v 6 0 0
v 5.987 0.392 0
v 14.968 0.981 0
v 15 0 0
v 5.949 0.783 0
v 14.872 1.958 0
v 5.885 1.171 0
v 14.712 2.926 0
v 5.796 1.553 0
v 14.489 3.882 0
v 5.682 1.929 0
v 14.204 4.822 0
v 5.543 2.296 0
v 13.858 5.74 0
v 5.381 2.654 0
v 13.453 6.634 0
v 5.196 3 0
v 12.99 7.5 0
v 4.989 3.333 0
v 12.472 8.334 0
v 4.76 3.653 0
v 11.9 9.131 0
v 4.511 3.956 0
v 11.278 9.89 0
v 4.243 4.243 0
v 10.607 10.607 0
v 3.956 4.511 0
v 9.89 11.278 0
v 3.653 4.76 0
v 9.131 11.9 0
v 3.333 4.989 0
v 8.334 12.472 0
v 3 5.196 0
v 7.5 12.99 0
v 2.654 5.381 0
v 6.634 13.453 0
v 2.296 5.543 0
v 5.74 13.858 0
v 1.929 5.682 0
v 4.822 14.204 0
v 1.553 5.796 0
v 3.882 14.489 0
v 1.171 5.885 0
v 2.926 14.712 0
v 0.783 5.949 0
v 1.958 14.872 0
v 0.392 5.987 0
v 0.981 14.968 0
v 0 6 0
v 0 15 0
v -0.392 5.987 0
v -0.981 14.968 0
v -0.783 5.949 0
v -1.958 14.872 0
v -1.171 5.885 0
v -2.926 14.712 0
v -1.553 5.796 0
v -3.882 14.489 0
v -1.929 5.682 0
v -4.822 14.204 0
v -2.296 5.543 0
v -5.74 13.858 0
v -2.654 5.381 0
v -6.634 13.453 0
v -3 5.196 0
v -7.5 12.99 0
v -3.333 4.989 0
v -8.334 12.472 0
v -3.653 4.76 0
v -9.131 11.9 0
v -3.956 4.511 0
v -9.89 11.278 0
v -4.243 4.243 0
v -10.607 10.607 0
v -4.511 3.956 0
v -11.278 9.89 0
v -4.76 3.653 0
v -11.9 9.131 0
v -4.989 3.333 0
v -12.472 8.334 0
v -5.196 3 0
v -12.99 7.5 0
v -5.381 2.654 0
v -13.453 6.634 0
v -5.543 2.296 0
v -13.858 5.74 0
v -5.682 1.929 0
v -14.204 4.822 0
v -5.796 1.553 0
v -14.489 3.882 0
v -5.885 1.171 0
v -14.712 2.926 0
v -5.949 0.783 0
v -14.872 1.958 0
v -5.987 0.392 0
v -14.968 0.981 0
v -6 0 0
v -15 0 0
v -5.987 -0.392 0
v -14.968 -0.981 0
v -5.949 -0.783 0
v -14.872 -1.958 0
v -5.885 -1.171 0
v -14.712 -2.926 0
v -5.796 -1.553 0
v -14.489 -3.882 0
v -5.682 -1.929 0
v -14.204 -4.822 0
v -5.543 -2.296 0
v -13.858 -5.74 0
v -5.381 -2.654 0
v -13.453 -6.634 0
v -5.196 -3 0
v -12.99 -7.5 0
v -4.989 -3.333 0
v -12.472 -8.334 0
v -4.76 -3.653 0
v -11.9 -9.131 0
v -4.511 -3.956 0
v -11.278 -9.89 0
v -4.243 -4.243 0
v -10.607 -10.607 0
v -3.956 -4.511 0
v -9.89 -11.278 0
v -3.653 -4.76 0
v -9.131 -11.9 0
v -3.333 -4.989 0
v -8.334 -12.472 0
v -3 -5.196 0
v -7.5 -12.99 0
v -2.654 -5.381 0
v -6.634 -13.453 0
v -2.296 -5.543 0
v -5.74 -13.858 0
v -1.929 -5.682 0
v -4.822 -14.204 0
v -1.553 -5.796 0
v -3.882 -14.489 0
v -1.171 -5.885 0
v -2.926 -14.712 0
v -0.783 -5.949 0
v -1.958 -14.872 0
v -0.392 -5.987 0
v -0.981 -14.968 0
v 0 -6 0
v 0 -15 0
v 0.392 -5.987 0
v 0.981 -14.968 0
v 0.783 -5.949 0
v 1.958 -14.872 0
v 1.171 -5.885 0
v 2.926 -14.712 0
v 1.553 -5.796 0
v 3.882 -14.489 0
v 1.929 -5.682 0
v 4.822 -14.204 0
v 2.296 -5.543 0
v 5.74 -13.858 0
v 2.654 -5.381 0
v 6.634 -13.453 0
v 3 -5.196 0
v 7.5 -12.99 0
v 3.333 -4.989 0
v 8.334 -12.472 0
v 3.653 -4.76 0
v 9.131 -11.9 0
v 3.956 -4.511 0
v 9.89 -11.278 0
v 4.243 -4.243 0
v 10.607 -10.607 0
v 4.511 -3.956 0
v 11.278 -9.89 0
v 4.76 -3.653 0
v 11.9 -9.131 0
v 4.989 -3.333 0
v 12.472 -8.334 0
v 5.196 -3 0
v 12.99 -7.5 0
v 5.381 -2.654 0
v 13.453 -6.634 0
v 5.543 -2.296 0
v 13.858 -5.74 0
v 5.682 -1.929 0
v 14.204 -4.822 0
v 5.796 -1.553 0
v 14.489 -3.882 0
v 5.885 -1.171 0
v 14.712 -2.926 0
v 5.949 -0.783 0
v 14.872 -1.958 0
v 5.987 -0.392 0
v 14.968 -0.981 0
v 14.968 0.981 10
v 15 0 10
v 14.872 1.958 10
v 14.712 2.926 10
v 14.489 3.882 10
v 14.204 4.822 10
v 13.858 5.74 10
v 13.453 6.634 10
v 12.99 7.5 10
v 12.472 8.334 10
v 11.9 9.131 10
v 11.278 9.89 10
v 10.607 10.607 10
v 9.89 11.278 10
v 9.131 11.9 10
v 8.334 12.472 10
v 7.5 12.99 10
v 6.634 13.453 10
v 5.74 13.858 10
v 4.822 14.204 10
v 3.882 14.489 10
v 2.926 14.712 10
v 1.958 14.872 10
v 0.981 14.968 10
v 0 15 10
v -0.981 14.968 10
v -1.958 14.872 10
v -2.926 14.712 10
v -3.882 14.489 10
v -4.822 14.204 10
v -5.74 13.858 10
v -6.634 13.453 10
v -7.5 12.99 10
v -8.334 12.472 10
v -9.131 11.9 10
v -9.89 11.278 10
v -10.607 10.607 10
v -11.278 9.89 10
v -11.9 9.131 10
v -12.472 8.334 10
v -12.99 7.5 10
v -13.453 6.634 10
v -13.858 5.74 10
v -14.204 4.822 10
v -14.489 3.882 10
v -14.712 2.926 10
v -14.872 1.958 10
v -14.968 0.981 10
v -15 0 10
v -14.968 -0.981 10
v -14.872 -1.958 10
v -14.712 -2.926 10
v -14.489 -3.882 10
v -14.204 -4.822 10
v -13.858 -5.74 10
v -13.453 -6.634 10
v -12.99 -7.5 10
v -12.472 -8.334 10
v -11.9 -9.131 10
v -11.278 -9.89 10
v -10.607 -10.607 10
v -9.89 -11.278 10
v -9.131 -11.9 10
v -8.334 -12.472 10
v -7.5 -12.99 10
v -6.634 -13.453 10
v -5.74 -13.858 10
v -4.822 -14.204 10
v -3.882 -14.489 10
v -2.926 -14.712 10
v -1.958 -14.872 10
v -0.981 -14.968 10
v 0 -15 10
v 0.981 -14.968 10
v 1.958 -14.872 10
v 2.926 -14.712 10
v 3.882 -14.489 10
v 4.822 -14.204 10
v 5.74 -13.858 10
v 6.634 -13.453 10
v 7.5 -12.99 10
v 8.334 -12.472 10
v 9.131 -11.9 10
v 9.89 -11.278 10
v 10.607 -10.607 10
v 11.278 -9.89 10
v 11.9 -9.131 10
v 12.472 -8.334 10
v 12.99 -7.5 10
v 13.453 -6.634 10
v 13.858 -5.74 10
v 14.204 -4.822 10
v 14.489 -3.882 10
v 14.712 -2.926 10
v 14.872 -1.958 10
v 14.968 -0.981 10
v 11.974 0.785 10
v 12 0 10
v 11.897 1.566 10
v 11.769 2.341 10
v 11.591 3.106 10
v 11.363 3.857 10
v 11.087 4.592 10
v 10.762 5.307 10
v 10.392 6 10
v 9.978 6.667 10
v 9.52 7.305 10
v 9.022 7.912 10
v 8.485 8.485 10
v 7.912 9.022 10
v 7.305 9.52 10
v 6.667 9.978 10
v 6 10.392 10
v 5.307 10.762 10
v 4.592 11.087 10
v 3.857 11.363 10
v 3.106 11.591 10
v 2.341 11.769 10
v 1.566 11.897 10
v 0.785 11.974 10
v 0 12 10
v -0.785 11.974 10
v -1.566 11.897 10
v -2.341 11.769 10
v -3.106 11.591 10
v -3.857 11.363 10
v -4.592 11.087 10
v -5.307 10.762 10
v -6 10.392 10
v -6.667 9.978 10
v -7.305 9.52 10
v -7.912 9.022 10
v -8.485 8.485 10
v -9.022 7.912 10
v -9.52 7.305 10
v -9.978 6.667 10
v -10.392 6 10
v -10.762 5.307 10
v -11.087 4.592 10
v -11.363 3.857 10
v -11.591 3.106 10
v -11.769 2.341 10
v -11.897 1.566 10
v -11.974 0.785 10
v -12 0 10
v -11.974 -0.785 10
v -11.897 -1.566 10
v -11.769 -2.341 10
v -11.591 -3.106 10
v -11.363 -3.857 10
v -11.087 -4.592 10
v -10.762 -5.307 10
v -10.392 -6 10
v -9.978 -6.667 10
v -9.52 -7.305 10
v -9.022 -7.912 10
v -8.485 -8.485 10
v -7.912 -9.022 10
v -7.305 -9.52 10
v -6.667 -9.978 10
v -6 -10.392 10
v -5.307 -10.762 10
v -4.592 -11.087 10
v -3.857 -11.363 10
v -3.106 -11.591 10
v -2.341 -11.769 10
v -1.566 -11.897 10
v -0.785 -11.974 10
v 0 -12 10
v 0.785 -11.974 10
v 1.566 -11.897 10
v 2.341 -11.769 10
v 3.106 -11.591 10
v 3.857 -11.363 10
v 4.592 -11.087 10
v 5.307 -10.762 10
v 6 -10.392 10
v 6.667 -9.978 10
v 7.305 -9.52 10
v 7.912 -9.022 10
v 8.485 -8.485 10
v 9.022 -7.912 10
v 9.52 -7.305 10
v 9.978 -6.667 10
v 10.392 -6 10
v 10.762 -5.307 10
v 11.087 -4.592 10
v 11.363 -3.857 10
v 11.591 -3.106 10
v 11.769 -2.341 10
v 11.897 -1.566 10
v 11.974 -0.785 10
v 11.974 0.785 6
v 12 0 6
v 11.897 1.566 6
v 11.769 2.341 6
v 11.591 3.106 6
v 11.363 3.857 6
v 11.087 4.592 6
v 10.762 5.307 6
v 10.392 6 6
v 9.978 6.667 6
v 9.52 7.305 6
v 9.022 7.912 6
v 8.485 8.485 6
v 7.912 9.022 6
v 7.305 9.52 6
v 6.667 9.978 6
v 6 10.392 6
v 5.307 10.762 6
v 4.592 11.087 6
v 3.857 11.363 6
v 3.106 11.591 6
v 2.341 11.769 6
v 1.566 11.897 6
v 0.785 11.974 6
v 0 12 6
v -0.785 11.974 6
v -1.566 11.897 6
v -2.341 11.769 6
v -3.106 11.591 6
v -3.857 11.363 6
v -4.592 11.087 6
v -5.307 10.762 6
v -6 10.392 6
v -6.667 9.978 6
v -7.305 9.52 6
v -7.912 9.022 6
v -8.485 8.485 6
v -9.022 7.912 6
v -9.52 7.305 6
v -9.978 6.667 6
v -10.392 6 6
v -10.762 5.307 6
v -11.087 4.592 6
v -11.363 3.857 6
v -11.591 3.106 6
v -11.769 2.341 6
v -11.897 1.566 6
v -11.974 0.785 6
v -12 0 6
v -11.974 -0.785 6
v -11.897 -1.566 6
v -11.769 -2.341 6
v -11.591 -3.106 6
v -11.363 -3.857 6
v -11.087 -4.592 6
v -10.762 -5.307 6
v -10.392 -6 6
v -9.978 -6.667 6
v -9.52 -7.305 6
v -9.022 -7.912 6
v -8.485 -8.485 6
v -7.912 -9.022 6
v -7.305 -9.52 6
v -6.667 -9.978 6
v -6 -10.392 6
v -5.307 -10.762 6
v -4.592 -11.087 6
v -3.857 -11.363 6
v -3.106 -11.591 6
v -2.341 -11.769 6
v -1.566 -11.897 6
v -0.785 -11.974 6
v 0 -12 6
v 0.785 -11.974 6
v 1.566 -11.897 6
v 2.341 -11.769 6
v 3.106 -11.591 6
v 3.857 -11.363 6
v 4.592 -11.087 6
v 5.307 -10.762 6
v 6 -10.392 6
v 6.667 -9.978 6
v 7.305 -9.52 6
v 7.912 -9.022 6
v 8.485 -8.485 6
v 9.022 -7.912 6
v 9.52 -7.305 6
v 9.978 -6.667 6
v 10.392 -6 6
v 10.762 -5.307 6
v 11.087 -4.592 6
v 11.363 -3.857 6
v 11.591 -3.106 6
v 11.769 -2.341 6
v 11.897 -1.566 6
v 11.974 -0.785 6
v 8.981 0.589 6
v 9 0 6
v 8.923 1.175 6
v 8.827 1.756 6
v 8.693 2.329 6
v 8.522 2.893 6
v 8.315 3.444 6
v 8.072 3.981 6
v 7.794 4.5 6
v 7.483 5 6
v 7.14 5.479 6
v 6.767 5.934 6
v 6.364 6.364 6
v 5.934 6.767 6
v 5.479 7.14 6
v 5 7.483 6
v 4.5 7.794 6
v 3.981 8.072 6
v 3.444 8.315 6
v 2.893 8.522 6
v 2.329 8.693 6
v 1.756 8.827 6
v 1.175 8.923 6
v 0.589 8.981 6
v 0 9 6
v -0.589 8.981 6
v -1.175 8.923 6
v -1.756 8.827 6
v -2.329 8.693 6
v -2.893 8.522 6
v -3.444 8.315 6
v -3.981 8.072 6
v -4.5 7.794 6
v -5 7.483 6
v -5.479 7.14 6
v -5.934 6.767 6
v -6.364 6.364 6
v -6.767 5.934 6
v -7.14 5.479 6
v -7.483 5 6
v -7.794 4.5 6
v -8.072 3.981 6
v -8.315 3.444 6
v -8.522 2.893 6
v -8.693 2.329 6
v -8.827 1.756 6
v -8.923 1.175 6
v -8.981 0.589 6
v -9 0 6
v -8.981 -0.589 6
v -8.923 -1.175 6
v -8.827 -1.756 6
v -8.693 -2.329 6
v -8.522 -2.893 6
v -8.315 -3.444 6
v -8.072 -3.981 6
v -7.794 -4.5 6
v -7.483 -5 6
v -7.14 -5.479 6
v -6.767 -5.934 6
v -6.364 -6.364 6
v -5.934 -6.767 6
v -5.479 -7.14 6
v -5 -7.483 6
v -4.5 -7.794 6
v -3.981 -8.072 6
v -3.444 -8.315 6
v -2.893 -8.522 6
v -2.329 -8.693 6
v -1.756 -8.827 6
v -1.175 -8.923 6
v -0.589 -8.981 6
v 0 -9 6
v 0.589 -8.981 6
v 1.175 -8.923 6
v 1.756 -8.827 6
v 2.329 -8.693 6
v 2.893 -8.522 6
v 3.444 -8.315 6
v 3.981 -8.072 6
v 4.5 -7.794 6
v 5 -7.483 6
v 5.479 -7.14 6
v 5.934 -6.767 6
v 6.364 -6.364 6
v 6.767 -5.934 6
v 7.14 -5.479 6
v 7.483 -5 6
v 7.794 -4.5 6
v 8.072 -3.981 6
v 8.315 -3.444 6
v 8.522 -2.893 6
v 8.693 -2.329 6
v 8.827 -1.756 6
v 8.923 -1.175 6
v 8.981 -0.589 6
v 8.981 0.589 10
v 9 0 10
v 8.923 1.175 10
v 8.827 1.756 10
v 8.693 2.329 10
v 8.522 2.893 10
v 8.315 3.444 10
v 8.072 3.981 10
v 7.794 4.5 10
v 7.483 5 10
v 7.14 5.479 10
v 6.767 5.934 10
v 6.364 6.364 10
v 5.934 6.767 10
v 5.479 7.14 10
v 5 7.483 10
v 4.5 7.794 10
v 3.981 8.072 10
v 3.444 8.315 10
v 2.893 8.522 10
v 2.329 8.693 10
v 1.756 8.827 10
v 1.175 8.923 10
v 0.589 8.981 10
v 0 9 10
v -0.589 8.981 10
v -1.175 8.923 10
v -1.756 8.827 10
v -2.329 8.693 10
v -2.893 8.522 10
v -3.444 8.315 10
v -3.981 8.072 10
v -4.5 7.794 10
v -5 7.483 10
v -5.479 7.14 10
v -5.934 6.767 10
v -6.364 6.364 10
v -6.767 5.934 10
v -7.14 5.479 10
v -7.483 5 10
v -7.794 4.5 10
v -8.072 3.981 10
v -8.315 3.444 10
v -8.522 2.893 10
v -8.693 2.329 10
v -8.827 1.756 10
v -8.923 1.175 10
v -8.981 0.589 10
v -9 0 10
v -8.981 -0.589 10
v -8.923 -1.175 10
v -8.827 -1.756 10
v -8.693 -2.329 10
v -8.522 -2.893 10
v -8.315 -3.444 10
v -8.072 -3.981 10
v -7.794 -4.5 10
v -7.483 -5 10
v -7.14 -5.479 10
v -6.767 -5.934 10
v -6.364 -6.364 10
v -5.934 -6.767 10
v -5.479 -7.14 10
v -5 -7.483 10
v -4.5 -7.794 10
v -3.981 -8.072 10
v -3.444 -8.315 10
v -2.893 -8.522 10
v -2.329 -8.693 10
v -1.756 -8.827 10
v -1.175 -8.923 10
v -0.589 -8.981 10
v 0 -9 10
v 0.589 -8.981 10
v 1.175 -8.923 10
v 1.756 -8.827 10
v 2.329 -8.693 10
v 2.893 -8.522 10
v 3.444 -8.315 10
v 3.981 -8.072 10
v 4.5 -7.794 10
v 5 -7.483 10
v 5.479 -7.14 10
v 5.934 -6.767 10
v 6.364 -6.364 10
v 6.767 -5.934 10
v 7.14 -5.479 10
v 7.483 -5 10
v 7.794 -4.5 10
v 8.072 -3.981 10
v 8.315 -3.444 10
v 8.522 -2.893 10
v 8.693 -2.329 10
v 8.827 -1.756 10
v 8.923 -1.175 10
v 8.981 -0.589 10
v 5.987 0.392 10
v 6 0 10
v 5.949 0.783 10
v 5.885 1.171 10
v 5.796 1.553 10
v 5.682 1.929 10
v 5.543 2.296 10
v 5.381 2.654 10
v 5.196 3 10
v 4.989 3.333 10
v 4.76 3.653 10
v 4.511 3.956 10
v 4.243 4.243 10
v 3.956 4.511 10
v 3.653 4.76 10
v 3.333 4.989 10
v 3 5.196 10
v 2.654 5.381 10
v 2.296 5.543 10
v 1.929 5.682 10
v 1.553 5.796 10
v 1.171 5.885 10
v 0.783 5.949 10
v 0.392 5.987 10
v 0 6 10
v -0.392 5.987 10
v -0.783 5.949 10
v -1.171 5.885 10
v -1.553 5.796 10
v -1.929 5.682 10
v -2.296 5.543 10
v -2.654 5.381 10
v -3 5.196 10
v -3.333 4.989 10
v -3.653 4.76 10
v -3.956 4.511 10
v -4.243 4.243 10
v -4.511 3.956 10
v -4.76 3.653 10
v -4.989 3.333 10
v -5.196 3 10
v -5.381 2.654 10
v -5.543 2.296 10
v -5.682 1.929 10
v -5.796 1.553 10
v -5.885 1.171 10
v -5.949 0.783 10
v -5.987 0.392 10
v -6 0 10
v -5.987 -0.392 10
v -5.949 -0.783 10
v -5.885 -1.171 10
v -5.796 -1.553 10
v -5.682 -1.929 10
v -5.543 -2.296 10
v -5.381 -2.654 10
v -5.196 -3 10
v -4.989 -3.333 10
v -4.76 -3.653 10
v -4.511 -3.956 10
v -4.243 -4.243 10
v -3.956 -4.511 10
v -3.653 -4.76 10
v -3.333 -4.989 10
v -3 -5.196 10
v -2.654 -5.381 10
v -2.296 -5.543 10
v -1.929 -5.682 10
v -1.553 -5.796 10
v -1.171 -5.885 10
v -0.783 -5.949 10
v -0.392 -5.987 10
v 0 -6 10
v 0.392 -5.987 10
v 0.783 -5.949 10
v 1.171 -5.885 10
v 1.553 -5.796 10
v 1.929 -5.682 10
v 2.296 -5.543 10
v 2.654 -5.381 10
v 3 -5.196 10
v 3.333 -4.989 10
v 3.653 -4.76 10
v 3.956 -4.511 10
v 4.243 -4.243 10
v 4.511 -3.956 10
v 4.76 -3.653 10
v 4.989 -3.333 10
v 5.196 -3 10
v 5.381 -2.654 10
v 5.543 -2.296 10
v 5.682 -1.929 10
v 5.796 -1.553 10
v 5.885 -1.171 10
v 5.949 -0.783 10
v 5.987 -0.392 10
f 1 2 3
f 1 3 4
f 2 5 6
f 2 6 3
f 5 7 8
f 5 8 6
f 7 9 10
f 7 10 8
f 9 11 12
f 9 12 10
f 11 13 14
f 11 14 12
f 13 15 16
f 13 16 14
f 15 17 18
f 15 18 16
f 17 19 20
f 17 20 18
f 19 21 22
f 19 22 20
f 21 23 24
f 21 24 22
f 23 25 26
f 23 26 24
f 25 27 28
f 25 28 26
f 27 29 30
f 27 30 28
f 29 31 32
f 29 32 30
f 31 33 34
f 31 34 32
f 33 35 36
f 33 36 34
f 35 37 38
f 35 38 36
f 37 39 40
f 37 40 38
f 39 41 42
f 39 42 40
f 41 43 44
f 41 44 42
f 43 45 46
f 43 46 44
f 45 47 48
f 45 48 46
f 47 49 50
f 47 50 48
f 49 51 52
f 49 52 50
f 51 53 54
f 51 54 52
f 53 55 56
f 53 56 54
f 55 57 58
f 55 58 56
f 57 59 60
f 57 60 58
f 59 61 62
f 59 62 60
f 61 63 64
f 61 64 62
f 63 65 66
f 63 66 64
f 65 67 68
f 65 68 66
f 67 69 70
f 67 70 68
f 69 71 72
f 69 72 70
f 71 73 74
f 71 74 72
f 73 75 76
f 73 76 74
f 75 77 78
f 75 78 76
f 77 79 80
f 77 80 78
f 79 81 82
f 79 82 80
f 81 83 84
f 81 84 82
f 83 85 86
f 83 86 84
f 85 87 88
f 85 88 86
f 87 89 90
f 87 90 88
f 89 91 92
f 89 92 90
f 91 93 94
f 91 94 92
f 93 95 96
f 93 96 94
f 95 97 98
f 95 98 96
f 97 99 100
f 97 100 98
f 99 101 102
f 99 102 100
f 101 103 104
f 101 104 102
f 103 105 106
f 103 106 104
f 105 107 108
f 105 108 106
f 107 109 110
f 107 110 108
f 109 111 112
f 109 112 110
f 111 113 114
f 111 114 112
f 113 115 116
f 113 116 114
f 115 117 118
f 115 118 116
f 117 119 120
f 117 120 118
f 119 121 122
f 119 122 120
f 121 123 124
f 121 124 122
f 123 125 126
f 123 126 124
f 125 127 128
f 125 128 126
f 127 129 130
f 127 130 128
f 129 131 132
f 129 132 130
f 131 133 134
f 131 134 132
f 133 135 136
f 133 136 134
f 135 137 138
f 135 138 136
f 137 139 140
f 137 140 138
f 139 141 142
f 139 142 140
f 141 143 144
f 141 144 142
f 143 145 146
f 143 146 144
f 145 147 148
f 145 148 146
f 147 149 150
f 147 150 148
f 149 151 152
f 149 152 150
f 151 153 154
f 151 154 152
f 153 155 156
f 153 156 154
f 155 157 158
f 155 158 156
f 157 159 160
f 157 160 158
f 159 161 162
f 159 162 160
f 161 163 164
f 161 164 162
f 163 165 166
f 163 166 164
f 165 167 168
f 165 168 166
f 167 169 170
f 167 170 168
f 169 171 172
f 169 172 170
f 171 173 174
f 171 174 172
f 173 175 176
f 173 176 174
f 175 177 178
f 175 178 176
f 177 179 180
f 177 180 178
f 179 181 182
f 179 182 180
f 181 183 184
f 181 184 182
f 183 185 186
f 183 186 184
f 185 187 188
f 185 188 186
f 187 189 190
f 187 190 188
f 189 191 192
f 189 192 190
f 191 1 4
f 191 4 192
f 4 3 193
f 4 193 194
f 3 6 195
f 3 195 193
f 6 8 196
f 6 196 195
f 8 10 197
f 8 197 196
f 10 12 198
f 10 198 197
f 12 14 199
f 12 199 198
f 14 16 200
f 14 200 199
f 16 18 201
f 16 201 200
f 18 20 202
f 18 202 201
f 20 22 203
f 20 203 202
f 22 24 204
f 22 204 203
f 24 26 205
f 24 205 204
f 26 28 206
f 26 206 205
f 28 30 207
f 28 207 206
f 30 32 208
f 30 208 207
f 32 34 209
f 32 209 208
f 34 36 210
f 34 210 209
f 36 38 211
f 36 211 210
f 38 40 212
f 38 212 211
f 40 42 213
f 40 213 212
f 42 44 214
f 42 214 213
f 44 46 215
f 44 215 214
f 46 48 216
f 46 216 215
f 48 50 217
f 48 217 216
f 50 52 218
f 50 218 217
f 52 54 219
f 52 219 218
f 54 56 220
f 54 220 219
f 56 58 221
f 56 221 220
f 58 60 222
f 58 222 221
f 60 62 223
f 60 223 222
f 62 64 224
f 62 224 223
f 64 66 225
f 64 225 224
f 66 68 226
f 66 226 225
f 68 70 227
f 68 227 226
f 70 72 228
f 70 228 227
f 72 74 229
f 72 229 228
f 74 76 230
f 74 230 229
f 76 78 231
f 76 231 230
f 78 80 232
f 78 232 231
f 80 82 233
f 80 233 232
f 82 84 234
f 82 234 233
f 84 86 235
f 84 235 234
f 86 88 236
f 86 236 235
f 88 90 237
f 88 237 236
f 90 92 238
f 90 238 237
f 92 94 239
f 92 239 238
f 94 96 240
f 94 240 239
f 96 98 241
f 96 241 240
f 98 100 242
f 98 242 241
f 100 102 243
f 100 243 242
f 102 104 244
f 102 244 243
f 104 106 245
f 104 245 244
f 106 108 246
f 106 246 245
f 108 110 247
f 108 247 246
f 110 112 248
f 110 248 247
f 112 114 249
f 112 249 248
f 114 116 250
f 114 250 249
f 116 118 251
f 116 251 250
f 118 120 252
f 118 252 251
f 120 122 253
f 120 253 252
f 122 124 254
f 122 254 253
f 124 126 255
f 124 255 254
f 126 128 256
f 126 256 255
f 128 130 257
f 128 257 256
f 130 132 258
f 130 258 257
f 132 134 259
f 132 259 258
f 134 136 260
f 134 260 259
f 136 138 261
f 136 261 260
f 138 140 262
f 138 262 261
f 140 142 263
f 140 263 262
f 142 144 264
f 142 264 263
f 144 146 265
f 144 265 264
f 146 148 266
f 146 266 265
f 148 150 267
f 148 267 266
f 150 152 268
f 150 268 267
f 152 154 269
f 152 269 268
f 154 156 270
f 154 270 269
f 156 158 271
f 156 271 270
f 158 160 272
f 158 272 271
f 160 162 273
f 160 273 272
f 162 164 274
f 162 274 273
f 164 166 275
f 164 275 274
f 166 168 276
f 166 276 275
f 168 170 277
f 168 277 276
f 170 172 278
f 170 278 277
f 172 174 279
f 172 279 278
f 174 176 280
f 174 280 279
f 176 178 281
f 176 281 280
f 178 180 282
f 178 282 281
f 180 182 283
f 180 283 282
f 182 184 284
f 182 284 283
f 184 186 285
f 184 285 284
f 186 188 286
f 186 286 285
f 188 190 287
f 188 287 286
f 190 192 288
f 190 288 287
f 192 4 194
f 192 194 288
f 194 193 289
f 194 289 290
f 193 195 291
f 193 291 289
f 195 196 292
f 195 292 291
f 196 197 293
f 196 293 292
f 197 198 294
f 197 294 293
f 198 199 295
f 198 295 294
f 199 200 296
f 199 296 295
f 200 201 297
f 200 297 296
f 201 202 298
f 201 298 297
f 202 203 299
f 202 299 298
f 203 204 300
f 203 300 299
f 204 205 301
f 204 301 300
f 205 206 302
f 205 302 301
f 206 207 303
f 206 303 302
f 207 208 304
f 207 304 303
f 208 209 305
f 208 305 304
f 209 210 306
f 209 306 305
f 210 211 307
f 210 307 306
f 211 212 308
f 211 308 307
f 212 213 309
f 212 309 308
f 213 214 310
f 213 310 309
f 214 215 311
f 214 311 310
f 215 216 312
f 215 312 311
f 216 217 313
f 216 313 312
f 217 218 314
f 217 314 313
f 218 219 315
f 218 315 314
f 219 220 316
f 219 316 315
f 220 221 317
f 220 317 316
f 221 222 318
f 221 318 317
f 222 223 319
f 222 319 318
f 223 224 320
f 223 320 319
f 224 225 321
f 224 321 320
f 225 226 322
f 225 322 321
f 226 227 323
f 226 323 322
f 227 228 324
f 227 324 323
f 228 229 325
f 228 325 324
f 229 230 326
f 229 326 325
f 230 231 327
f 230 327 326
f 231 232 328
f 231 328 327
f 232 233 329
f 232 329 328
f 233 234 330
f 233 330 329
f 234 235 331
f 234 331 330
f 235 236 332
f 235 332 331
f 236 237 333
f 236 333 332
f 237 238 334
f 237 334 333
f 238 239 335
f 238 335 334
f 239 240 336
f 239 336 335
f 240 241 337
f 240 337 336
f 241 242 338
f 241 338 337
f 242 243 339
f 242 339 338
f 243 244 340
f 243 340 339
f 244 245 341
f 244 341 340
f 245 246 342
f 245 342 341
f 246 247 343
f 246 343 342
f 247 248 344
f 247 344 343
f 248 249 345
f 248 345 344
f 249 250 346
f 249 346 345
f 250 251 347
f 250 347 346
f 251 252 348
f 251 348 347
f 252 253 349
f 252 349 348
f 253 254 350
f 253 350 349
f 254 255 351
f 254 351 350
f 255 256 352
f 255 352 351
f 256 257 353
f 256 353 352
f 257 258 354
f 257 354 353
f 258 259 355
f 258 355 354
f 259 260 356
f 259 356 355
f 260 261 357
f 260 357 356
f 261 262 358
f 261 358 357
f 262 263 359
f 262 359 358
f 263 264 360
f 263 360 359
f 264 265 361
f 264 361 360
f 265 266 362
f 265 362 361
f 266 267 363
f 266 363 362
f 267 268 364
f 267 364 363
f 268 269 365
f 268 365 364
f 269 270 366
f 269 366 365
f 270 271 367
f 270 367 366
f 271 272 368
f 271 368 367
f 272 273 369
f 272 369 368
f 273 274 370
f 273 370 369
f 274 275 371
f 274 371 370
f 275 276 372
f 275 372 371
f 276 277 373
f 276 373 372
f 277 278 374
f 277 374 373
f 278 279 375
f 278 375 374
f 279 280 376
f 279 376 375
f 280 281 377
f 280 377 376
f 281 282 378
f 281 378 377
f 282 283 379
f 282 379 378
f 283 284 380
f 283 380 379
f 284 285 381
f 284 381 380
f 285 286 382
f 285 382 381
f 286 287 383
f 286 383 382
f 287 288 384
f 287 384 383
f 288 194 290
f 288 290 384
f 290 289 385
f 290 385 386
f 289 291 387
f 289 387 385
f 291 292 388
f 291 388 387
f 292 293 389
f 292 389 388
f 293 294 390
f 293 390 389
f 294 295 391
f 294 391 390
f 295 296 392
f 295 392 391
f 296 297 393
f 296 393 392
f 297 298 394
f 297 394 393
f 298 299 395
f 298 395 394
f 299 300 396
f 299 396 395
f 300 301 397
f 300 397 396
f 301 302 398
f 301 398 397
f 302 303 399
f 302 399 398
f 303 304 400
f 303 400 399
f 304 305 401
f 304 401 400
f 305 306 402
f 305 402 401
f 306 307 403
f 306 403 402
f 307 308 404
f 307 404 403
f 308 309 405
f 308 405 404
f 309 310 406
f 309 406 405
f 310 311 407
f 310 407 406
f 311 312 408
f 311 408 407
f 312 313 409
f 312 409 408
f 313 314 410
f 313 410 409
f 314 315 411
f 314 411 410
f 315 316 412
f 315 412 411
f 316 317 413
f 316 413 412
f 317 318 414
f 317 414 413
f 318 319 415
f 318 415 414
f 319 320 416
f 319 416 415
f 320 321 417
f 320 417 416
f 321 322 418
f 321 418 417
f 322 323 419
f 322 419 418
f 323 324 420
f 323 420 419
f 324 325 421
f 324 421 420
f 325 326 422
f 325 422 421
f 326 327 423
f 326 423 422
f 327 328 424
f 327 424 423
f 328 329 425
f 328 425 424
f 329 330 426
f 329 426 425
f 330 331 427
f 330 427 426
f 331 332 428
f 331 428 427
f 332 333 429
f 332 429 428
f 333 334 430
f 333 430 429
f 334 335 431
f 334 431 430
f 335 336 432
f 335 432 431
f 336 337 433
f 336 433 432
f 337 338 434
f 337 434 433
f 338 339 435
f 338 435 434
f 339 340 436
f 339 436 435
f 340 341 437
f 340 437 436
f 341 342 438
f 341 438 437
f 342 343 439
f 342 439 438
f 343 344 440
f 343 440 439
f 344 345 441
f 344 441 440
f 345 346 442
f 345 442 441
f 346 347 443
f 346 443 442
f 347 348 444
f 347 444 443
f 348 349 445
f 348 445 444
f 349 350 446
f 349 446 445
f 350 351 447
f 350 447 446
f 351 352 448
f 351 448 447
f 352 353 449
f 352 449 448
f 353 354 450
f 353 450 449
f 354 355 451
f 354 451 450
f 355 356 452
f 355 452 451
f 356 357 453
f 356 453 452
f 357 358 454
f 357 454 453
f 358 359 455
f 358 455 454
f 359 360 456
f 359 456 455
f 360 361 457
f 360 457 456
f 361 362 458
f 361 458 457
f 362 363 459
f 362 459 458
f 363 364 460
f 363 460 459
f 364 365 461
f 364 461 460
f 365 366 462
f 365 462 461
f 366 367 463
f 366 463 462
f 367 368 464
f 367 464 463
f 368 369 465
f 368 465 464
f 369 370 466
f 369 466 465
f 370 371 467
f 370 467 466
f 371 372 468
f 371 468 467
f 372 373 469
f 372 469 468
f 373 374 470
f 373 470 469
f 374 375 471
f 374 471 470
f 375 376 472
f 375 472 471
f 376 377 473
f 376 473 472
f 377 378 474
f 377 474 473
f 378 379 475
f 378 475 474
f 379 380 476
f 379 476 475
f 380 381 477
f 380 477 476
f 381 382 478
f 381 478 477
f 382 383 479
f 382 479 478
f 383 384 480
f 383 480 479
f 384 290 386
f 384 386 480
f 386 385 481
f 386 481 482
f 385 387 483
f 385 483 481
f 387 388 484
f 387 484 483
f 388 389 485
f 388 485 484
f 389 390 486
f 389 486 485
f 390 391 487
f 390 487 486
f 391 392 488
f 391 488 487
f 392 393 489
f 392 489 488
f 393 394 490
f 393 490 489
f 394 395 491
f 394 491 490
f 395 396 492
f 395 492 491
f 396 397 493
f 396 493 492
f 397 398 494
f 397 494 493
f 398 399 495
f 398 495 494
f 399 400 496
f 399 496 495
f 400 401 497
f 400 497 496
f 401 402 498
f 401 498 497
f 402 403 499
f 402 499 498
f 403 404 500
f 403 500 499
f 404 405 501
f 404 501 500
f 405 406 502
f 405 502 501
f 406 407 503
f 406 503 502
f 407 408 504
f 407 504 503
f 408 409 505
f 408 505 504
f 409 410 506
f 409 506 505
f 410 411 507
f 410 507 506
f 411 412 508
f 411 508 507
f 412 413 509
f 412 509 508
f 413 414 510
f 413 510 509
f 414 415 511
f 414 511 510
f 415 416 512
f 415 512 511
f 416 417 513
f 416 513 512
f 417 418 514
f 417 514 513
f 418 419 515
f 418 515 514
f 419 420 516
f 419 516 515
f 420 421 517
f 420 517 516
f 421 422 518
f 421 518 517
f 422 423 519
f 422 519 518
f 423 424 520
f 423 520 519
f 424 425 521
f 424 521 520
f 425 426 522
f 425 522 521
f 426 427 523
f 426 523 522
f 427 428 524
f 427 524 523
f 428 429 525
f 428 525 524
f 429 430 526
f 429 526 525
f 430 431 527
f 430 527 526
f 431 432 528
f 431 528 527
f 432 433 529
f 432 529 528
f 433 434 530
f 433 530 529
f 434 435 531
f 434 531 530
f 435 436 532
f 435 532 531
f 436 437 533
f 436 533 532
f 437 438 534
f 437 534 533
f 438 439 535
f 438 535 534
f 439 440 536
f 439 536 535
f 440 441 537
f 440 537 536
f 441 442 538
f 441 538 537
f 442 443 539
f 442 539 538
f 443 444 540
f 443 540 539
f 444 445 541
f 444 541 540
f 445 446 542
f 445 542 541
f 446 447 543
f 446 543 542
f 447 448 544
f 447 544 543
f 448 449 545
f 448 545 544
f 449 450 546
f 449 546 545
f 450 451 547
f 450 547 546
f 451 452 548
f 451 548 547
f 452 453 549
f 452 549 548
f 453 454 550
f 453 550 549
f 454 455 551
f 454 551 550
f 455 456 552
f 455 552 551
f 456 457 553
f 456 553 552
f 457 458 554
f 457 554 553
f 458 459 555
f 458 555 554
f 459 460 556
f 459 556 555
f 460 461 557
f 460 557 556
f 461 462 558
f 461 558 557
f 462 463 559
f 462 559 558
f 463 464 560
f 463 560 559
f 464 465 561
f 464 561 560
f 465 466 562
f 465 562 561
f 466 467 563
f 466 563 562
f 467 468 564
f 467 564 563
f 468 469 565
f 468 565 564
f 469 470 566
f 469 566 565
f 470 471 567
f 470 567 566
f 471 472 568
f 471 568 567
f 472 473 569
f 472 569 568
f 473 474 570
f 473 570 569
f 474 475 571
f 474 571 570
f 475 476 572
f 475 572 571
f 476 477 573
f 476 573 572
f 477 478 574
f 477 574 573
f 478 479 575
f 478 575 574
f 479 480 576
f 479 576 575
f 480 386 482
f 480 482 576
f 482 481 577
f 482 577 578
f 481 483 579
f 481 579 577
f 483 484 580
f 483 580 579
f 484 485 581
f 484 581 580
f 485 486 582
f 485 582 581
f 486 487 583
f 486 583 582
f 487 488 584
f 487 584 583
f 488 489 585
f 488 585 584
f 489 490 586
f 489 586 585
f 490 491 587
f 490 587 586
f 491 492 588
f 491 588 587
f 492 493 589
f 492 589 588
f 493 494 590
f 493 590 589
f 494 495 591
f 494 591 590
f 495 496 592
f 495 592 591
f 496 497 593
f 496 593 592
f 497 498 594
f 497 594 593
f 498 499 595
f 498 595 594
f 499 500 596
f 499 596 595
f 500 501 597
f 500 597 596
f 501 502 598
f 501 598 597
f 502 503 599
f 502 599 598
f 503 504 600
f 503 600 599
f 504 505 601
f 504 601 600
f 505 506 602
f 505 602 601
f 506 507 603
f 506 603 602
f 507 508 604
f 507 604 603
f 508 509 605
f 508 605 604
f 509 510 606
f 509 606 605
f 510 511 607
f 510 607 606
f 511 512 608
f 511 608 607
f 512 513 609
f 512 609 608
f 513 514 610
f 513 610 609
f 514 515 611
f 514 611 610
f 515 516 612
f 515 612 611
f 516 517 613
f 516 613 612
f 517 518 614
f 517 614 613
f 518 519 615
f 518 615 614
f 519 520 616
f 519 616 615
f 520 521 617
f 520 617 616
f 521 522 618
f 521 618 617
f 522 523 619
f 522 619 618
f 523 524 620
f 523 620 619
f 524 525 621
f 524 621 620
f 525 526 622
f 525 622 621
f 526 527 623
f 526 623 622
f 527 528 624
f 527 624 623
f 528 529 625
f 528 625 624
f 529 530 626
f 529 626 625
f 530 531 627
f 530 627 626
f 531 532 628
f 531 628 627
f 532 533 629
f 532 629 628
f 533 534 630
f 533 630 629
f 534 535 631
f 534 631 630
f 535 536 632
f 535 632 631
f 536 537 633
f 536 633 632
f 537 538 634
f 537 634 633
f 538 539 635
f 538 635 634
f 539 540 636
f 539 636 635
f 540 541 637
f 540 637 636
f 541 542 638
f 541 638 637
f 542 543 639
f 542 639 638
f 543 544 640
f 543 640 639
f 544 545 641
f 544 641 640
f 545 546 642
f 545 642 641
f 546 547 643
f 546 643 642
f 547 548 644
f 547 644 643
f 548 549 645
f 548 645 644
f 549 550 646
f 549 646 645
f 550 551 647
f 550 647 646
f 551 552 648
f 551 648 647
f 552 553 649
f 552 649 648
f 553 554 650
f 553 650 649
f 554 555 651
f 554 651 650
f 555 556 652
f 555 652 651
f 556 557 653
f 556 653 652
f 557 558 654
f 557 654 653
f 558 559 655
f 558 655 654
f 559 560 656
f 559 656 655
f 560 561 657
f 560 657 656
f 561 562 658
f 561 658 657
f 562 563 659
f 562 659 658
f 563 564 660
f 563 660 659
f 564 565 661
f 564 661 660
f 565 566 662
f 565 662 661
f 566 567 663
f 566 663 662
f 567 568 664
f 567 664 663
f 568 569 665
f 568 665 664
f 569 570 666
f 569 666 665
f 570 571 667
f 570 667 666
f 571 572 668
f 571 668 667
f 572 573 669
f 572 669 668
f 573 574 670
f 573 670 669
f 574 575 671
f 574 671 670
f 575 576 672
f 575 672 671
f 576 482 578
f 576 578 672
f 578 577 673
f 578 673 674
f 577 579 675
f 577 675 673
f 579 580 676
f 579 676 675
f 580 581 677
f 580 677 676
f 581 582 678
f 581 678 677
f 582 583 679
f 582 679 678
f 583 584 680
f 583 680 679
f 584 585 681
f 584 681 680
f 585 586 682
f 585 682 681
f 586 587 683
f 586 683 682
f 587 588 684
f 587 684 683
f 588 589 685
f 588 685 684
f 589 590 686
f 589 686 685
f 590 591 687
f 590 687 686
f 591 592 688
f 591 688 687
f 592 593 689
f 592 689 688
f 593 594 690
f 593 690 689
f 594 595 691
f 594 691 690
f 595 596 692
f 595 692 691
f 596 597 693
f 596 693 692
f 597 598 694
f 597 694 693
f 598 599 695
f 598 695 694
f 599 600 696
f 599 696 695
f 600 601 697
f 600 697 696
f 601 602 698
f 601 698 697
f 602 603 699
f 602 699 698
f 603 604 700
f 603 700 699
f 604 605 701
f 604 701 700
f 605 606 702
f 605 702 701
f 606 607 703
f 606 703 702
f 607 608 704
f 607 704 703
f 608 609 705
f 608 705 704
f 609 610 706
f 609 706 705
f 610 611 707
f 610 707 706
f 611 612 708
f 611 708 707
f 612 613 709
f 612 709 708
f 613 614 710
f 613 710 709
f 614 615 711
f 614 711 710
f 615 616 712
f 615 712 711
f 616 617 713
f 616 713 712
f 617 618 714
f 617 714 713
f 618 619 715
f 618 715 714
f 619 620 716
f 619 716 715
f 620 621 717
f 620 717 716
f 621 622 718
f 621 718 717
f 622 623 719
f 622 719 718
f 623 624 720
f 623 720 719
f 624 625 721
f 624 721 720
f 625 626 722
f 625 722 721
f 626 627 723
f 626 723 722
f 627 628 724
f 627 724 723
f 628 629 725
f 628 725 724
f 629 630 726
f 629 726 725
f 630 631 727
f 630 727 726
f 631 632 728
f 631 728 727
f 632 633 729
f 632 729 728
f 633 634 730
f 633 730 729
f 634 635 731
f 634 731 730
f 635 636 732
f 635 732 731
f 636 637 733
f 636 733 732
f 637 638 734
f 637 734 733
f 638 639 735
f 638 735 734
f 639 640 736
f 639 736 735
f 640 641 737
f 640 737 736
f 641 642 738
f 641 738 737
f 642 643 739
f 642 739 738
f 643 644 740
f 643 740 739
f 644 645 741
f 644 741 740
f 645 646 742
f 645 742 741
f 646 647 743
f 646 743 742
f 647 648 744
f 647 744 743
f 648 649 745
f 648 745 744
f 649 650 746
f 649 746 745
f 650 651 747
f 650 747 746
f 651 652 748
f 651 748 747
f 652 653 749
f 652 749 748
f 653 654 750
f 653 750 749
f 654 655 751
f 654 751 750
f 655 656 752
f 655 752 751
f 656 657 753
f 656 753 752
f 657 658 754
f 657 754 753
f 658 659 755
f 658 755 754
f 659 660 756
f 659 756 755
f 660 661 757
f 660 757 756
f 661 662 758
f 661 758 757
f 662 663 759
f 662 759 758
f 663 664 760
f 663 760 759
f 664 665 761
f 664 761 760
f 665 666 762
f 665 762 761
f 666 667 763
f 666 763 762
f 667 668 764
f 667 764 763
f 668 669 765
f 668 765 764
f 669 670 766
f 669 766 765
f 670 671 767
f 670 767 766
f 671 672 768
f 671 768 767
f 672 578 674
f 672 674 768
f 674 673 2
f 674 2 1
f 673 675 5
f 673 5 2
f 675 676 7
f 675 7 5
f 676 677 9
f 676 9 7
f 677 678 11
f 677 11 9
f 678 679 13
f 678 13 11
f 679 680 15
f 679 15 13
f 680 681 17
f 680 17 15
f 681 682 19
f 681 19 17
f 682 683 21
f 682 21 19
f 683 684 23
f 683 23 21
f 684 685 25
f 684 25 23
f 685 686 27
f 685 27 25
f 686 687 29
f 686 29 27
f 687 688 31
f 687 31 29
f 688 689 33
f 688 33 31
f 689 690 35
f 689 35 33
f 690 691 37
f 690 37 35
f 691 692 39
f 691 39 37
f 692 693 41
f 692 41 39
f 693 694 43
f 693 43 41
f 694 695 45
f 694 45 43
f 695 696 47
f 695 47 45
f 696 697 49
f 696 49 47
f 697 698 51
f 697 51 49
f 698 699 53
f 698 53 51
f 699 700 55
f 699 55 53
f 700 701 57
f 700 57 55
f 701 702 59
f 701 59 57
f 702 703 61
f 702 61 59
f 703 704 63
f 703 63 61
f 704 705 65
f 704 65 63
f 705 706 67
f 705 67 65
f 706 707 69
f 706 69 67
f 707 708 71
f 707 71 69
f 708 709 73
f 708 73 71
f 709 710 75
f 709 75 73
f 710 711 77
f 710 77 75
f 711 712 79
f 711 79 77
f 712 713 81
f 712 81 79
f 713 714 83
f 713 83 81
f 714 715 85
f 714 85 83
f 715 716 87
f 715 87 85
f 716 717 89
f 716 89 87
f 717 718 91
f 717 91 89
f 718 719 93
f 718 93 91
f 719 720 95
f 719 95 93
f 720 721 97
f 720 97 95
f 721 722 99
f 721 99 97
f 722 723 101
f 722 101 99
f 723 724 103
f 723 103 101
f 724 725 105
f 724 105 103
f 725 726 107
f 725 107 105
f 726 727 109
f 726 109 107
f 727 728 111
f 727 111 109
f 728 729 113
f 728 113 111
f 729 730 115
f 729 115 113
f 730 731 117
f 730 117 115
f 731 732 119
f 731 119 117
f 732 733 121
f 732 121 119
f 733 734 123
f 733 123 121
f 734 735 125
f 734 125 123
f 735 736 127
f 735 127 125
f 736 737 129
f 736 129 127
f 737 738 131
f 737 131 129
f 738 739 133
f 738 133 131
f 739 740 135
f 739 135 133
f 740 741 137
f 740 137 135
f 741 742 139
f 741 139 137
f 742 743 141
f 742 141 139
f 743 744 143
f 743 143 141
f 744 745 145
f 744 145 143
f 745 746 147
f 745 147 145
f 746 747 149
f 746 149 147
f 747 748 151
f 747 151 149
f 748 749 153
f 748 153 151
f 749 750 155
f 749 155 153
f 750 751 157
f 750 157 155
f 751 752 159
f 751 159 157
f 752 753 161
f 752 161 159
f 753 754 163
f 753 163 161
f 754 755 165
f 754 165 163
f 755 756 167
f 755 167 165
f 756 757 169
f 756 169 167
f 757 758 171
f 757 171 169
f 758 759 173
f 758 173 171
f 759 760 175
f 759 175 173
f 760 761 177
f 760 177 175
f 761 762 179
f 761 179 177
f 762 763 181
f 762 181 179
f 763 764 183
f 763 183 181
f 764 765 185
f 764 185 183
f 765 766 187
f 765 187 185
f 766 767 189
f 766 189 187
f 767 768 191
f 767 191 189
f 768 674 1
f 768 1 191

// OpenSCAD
// Original MechIntel educational model. CC0-1.0. Units: mm.
// Not a standardized or load-rated component.
$fn=96;
// Section points: [radius, height], mm. Edit to change the profile.
section=[[6, 0], [15, 0], [15, 10], [12, 10], [12, 6], [9, 6], [9, 10], [6, 10]];
rotate_extrude($fn=96) polygon(points=section);
